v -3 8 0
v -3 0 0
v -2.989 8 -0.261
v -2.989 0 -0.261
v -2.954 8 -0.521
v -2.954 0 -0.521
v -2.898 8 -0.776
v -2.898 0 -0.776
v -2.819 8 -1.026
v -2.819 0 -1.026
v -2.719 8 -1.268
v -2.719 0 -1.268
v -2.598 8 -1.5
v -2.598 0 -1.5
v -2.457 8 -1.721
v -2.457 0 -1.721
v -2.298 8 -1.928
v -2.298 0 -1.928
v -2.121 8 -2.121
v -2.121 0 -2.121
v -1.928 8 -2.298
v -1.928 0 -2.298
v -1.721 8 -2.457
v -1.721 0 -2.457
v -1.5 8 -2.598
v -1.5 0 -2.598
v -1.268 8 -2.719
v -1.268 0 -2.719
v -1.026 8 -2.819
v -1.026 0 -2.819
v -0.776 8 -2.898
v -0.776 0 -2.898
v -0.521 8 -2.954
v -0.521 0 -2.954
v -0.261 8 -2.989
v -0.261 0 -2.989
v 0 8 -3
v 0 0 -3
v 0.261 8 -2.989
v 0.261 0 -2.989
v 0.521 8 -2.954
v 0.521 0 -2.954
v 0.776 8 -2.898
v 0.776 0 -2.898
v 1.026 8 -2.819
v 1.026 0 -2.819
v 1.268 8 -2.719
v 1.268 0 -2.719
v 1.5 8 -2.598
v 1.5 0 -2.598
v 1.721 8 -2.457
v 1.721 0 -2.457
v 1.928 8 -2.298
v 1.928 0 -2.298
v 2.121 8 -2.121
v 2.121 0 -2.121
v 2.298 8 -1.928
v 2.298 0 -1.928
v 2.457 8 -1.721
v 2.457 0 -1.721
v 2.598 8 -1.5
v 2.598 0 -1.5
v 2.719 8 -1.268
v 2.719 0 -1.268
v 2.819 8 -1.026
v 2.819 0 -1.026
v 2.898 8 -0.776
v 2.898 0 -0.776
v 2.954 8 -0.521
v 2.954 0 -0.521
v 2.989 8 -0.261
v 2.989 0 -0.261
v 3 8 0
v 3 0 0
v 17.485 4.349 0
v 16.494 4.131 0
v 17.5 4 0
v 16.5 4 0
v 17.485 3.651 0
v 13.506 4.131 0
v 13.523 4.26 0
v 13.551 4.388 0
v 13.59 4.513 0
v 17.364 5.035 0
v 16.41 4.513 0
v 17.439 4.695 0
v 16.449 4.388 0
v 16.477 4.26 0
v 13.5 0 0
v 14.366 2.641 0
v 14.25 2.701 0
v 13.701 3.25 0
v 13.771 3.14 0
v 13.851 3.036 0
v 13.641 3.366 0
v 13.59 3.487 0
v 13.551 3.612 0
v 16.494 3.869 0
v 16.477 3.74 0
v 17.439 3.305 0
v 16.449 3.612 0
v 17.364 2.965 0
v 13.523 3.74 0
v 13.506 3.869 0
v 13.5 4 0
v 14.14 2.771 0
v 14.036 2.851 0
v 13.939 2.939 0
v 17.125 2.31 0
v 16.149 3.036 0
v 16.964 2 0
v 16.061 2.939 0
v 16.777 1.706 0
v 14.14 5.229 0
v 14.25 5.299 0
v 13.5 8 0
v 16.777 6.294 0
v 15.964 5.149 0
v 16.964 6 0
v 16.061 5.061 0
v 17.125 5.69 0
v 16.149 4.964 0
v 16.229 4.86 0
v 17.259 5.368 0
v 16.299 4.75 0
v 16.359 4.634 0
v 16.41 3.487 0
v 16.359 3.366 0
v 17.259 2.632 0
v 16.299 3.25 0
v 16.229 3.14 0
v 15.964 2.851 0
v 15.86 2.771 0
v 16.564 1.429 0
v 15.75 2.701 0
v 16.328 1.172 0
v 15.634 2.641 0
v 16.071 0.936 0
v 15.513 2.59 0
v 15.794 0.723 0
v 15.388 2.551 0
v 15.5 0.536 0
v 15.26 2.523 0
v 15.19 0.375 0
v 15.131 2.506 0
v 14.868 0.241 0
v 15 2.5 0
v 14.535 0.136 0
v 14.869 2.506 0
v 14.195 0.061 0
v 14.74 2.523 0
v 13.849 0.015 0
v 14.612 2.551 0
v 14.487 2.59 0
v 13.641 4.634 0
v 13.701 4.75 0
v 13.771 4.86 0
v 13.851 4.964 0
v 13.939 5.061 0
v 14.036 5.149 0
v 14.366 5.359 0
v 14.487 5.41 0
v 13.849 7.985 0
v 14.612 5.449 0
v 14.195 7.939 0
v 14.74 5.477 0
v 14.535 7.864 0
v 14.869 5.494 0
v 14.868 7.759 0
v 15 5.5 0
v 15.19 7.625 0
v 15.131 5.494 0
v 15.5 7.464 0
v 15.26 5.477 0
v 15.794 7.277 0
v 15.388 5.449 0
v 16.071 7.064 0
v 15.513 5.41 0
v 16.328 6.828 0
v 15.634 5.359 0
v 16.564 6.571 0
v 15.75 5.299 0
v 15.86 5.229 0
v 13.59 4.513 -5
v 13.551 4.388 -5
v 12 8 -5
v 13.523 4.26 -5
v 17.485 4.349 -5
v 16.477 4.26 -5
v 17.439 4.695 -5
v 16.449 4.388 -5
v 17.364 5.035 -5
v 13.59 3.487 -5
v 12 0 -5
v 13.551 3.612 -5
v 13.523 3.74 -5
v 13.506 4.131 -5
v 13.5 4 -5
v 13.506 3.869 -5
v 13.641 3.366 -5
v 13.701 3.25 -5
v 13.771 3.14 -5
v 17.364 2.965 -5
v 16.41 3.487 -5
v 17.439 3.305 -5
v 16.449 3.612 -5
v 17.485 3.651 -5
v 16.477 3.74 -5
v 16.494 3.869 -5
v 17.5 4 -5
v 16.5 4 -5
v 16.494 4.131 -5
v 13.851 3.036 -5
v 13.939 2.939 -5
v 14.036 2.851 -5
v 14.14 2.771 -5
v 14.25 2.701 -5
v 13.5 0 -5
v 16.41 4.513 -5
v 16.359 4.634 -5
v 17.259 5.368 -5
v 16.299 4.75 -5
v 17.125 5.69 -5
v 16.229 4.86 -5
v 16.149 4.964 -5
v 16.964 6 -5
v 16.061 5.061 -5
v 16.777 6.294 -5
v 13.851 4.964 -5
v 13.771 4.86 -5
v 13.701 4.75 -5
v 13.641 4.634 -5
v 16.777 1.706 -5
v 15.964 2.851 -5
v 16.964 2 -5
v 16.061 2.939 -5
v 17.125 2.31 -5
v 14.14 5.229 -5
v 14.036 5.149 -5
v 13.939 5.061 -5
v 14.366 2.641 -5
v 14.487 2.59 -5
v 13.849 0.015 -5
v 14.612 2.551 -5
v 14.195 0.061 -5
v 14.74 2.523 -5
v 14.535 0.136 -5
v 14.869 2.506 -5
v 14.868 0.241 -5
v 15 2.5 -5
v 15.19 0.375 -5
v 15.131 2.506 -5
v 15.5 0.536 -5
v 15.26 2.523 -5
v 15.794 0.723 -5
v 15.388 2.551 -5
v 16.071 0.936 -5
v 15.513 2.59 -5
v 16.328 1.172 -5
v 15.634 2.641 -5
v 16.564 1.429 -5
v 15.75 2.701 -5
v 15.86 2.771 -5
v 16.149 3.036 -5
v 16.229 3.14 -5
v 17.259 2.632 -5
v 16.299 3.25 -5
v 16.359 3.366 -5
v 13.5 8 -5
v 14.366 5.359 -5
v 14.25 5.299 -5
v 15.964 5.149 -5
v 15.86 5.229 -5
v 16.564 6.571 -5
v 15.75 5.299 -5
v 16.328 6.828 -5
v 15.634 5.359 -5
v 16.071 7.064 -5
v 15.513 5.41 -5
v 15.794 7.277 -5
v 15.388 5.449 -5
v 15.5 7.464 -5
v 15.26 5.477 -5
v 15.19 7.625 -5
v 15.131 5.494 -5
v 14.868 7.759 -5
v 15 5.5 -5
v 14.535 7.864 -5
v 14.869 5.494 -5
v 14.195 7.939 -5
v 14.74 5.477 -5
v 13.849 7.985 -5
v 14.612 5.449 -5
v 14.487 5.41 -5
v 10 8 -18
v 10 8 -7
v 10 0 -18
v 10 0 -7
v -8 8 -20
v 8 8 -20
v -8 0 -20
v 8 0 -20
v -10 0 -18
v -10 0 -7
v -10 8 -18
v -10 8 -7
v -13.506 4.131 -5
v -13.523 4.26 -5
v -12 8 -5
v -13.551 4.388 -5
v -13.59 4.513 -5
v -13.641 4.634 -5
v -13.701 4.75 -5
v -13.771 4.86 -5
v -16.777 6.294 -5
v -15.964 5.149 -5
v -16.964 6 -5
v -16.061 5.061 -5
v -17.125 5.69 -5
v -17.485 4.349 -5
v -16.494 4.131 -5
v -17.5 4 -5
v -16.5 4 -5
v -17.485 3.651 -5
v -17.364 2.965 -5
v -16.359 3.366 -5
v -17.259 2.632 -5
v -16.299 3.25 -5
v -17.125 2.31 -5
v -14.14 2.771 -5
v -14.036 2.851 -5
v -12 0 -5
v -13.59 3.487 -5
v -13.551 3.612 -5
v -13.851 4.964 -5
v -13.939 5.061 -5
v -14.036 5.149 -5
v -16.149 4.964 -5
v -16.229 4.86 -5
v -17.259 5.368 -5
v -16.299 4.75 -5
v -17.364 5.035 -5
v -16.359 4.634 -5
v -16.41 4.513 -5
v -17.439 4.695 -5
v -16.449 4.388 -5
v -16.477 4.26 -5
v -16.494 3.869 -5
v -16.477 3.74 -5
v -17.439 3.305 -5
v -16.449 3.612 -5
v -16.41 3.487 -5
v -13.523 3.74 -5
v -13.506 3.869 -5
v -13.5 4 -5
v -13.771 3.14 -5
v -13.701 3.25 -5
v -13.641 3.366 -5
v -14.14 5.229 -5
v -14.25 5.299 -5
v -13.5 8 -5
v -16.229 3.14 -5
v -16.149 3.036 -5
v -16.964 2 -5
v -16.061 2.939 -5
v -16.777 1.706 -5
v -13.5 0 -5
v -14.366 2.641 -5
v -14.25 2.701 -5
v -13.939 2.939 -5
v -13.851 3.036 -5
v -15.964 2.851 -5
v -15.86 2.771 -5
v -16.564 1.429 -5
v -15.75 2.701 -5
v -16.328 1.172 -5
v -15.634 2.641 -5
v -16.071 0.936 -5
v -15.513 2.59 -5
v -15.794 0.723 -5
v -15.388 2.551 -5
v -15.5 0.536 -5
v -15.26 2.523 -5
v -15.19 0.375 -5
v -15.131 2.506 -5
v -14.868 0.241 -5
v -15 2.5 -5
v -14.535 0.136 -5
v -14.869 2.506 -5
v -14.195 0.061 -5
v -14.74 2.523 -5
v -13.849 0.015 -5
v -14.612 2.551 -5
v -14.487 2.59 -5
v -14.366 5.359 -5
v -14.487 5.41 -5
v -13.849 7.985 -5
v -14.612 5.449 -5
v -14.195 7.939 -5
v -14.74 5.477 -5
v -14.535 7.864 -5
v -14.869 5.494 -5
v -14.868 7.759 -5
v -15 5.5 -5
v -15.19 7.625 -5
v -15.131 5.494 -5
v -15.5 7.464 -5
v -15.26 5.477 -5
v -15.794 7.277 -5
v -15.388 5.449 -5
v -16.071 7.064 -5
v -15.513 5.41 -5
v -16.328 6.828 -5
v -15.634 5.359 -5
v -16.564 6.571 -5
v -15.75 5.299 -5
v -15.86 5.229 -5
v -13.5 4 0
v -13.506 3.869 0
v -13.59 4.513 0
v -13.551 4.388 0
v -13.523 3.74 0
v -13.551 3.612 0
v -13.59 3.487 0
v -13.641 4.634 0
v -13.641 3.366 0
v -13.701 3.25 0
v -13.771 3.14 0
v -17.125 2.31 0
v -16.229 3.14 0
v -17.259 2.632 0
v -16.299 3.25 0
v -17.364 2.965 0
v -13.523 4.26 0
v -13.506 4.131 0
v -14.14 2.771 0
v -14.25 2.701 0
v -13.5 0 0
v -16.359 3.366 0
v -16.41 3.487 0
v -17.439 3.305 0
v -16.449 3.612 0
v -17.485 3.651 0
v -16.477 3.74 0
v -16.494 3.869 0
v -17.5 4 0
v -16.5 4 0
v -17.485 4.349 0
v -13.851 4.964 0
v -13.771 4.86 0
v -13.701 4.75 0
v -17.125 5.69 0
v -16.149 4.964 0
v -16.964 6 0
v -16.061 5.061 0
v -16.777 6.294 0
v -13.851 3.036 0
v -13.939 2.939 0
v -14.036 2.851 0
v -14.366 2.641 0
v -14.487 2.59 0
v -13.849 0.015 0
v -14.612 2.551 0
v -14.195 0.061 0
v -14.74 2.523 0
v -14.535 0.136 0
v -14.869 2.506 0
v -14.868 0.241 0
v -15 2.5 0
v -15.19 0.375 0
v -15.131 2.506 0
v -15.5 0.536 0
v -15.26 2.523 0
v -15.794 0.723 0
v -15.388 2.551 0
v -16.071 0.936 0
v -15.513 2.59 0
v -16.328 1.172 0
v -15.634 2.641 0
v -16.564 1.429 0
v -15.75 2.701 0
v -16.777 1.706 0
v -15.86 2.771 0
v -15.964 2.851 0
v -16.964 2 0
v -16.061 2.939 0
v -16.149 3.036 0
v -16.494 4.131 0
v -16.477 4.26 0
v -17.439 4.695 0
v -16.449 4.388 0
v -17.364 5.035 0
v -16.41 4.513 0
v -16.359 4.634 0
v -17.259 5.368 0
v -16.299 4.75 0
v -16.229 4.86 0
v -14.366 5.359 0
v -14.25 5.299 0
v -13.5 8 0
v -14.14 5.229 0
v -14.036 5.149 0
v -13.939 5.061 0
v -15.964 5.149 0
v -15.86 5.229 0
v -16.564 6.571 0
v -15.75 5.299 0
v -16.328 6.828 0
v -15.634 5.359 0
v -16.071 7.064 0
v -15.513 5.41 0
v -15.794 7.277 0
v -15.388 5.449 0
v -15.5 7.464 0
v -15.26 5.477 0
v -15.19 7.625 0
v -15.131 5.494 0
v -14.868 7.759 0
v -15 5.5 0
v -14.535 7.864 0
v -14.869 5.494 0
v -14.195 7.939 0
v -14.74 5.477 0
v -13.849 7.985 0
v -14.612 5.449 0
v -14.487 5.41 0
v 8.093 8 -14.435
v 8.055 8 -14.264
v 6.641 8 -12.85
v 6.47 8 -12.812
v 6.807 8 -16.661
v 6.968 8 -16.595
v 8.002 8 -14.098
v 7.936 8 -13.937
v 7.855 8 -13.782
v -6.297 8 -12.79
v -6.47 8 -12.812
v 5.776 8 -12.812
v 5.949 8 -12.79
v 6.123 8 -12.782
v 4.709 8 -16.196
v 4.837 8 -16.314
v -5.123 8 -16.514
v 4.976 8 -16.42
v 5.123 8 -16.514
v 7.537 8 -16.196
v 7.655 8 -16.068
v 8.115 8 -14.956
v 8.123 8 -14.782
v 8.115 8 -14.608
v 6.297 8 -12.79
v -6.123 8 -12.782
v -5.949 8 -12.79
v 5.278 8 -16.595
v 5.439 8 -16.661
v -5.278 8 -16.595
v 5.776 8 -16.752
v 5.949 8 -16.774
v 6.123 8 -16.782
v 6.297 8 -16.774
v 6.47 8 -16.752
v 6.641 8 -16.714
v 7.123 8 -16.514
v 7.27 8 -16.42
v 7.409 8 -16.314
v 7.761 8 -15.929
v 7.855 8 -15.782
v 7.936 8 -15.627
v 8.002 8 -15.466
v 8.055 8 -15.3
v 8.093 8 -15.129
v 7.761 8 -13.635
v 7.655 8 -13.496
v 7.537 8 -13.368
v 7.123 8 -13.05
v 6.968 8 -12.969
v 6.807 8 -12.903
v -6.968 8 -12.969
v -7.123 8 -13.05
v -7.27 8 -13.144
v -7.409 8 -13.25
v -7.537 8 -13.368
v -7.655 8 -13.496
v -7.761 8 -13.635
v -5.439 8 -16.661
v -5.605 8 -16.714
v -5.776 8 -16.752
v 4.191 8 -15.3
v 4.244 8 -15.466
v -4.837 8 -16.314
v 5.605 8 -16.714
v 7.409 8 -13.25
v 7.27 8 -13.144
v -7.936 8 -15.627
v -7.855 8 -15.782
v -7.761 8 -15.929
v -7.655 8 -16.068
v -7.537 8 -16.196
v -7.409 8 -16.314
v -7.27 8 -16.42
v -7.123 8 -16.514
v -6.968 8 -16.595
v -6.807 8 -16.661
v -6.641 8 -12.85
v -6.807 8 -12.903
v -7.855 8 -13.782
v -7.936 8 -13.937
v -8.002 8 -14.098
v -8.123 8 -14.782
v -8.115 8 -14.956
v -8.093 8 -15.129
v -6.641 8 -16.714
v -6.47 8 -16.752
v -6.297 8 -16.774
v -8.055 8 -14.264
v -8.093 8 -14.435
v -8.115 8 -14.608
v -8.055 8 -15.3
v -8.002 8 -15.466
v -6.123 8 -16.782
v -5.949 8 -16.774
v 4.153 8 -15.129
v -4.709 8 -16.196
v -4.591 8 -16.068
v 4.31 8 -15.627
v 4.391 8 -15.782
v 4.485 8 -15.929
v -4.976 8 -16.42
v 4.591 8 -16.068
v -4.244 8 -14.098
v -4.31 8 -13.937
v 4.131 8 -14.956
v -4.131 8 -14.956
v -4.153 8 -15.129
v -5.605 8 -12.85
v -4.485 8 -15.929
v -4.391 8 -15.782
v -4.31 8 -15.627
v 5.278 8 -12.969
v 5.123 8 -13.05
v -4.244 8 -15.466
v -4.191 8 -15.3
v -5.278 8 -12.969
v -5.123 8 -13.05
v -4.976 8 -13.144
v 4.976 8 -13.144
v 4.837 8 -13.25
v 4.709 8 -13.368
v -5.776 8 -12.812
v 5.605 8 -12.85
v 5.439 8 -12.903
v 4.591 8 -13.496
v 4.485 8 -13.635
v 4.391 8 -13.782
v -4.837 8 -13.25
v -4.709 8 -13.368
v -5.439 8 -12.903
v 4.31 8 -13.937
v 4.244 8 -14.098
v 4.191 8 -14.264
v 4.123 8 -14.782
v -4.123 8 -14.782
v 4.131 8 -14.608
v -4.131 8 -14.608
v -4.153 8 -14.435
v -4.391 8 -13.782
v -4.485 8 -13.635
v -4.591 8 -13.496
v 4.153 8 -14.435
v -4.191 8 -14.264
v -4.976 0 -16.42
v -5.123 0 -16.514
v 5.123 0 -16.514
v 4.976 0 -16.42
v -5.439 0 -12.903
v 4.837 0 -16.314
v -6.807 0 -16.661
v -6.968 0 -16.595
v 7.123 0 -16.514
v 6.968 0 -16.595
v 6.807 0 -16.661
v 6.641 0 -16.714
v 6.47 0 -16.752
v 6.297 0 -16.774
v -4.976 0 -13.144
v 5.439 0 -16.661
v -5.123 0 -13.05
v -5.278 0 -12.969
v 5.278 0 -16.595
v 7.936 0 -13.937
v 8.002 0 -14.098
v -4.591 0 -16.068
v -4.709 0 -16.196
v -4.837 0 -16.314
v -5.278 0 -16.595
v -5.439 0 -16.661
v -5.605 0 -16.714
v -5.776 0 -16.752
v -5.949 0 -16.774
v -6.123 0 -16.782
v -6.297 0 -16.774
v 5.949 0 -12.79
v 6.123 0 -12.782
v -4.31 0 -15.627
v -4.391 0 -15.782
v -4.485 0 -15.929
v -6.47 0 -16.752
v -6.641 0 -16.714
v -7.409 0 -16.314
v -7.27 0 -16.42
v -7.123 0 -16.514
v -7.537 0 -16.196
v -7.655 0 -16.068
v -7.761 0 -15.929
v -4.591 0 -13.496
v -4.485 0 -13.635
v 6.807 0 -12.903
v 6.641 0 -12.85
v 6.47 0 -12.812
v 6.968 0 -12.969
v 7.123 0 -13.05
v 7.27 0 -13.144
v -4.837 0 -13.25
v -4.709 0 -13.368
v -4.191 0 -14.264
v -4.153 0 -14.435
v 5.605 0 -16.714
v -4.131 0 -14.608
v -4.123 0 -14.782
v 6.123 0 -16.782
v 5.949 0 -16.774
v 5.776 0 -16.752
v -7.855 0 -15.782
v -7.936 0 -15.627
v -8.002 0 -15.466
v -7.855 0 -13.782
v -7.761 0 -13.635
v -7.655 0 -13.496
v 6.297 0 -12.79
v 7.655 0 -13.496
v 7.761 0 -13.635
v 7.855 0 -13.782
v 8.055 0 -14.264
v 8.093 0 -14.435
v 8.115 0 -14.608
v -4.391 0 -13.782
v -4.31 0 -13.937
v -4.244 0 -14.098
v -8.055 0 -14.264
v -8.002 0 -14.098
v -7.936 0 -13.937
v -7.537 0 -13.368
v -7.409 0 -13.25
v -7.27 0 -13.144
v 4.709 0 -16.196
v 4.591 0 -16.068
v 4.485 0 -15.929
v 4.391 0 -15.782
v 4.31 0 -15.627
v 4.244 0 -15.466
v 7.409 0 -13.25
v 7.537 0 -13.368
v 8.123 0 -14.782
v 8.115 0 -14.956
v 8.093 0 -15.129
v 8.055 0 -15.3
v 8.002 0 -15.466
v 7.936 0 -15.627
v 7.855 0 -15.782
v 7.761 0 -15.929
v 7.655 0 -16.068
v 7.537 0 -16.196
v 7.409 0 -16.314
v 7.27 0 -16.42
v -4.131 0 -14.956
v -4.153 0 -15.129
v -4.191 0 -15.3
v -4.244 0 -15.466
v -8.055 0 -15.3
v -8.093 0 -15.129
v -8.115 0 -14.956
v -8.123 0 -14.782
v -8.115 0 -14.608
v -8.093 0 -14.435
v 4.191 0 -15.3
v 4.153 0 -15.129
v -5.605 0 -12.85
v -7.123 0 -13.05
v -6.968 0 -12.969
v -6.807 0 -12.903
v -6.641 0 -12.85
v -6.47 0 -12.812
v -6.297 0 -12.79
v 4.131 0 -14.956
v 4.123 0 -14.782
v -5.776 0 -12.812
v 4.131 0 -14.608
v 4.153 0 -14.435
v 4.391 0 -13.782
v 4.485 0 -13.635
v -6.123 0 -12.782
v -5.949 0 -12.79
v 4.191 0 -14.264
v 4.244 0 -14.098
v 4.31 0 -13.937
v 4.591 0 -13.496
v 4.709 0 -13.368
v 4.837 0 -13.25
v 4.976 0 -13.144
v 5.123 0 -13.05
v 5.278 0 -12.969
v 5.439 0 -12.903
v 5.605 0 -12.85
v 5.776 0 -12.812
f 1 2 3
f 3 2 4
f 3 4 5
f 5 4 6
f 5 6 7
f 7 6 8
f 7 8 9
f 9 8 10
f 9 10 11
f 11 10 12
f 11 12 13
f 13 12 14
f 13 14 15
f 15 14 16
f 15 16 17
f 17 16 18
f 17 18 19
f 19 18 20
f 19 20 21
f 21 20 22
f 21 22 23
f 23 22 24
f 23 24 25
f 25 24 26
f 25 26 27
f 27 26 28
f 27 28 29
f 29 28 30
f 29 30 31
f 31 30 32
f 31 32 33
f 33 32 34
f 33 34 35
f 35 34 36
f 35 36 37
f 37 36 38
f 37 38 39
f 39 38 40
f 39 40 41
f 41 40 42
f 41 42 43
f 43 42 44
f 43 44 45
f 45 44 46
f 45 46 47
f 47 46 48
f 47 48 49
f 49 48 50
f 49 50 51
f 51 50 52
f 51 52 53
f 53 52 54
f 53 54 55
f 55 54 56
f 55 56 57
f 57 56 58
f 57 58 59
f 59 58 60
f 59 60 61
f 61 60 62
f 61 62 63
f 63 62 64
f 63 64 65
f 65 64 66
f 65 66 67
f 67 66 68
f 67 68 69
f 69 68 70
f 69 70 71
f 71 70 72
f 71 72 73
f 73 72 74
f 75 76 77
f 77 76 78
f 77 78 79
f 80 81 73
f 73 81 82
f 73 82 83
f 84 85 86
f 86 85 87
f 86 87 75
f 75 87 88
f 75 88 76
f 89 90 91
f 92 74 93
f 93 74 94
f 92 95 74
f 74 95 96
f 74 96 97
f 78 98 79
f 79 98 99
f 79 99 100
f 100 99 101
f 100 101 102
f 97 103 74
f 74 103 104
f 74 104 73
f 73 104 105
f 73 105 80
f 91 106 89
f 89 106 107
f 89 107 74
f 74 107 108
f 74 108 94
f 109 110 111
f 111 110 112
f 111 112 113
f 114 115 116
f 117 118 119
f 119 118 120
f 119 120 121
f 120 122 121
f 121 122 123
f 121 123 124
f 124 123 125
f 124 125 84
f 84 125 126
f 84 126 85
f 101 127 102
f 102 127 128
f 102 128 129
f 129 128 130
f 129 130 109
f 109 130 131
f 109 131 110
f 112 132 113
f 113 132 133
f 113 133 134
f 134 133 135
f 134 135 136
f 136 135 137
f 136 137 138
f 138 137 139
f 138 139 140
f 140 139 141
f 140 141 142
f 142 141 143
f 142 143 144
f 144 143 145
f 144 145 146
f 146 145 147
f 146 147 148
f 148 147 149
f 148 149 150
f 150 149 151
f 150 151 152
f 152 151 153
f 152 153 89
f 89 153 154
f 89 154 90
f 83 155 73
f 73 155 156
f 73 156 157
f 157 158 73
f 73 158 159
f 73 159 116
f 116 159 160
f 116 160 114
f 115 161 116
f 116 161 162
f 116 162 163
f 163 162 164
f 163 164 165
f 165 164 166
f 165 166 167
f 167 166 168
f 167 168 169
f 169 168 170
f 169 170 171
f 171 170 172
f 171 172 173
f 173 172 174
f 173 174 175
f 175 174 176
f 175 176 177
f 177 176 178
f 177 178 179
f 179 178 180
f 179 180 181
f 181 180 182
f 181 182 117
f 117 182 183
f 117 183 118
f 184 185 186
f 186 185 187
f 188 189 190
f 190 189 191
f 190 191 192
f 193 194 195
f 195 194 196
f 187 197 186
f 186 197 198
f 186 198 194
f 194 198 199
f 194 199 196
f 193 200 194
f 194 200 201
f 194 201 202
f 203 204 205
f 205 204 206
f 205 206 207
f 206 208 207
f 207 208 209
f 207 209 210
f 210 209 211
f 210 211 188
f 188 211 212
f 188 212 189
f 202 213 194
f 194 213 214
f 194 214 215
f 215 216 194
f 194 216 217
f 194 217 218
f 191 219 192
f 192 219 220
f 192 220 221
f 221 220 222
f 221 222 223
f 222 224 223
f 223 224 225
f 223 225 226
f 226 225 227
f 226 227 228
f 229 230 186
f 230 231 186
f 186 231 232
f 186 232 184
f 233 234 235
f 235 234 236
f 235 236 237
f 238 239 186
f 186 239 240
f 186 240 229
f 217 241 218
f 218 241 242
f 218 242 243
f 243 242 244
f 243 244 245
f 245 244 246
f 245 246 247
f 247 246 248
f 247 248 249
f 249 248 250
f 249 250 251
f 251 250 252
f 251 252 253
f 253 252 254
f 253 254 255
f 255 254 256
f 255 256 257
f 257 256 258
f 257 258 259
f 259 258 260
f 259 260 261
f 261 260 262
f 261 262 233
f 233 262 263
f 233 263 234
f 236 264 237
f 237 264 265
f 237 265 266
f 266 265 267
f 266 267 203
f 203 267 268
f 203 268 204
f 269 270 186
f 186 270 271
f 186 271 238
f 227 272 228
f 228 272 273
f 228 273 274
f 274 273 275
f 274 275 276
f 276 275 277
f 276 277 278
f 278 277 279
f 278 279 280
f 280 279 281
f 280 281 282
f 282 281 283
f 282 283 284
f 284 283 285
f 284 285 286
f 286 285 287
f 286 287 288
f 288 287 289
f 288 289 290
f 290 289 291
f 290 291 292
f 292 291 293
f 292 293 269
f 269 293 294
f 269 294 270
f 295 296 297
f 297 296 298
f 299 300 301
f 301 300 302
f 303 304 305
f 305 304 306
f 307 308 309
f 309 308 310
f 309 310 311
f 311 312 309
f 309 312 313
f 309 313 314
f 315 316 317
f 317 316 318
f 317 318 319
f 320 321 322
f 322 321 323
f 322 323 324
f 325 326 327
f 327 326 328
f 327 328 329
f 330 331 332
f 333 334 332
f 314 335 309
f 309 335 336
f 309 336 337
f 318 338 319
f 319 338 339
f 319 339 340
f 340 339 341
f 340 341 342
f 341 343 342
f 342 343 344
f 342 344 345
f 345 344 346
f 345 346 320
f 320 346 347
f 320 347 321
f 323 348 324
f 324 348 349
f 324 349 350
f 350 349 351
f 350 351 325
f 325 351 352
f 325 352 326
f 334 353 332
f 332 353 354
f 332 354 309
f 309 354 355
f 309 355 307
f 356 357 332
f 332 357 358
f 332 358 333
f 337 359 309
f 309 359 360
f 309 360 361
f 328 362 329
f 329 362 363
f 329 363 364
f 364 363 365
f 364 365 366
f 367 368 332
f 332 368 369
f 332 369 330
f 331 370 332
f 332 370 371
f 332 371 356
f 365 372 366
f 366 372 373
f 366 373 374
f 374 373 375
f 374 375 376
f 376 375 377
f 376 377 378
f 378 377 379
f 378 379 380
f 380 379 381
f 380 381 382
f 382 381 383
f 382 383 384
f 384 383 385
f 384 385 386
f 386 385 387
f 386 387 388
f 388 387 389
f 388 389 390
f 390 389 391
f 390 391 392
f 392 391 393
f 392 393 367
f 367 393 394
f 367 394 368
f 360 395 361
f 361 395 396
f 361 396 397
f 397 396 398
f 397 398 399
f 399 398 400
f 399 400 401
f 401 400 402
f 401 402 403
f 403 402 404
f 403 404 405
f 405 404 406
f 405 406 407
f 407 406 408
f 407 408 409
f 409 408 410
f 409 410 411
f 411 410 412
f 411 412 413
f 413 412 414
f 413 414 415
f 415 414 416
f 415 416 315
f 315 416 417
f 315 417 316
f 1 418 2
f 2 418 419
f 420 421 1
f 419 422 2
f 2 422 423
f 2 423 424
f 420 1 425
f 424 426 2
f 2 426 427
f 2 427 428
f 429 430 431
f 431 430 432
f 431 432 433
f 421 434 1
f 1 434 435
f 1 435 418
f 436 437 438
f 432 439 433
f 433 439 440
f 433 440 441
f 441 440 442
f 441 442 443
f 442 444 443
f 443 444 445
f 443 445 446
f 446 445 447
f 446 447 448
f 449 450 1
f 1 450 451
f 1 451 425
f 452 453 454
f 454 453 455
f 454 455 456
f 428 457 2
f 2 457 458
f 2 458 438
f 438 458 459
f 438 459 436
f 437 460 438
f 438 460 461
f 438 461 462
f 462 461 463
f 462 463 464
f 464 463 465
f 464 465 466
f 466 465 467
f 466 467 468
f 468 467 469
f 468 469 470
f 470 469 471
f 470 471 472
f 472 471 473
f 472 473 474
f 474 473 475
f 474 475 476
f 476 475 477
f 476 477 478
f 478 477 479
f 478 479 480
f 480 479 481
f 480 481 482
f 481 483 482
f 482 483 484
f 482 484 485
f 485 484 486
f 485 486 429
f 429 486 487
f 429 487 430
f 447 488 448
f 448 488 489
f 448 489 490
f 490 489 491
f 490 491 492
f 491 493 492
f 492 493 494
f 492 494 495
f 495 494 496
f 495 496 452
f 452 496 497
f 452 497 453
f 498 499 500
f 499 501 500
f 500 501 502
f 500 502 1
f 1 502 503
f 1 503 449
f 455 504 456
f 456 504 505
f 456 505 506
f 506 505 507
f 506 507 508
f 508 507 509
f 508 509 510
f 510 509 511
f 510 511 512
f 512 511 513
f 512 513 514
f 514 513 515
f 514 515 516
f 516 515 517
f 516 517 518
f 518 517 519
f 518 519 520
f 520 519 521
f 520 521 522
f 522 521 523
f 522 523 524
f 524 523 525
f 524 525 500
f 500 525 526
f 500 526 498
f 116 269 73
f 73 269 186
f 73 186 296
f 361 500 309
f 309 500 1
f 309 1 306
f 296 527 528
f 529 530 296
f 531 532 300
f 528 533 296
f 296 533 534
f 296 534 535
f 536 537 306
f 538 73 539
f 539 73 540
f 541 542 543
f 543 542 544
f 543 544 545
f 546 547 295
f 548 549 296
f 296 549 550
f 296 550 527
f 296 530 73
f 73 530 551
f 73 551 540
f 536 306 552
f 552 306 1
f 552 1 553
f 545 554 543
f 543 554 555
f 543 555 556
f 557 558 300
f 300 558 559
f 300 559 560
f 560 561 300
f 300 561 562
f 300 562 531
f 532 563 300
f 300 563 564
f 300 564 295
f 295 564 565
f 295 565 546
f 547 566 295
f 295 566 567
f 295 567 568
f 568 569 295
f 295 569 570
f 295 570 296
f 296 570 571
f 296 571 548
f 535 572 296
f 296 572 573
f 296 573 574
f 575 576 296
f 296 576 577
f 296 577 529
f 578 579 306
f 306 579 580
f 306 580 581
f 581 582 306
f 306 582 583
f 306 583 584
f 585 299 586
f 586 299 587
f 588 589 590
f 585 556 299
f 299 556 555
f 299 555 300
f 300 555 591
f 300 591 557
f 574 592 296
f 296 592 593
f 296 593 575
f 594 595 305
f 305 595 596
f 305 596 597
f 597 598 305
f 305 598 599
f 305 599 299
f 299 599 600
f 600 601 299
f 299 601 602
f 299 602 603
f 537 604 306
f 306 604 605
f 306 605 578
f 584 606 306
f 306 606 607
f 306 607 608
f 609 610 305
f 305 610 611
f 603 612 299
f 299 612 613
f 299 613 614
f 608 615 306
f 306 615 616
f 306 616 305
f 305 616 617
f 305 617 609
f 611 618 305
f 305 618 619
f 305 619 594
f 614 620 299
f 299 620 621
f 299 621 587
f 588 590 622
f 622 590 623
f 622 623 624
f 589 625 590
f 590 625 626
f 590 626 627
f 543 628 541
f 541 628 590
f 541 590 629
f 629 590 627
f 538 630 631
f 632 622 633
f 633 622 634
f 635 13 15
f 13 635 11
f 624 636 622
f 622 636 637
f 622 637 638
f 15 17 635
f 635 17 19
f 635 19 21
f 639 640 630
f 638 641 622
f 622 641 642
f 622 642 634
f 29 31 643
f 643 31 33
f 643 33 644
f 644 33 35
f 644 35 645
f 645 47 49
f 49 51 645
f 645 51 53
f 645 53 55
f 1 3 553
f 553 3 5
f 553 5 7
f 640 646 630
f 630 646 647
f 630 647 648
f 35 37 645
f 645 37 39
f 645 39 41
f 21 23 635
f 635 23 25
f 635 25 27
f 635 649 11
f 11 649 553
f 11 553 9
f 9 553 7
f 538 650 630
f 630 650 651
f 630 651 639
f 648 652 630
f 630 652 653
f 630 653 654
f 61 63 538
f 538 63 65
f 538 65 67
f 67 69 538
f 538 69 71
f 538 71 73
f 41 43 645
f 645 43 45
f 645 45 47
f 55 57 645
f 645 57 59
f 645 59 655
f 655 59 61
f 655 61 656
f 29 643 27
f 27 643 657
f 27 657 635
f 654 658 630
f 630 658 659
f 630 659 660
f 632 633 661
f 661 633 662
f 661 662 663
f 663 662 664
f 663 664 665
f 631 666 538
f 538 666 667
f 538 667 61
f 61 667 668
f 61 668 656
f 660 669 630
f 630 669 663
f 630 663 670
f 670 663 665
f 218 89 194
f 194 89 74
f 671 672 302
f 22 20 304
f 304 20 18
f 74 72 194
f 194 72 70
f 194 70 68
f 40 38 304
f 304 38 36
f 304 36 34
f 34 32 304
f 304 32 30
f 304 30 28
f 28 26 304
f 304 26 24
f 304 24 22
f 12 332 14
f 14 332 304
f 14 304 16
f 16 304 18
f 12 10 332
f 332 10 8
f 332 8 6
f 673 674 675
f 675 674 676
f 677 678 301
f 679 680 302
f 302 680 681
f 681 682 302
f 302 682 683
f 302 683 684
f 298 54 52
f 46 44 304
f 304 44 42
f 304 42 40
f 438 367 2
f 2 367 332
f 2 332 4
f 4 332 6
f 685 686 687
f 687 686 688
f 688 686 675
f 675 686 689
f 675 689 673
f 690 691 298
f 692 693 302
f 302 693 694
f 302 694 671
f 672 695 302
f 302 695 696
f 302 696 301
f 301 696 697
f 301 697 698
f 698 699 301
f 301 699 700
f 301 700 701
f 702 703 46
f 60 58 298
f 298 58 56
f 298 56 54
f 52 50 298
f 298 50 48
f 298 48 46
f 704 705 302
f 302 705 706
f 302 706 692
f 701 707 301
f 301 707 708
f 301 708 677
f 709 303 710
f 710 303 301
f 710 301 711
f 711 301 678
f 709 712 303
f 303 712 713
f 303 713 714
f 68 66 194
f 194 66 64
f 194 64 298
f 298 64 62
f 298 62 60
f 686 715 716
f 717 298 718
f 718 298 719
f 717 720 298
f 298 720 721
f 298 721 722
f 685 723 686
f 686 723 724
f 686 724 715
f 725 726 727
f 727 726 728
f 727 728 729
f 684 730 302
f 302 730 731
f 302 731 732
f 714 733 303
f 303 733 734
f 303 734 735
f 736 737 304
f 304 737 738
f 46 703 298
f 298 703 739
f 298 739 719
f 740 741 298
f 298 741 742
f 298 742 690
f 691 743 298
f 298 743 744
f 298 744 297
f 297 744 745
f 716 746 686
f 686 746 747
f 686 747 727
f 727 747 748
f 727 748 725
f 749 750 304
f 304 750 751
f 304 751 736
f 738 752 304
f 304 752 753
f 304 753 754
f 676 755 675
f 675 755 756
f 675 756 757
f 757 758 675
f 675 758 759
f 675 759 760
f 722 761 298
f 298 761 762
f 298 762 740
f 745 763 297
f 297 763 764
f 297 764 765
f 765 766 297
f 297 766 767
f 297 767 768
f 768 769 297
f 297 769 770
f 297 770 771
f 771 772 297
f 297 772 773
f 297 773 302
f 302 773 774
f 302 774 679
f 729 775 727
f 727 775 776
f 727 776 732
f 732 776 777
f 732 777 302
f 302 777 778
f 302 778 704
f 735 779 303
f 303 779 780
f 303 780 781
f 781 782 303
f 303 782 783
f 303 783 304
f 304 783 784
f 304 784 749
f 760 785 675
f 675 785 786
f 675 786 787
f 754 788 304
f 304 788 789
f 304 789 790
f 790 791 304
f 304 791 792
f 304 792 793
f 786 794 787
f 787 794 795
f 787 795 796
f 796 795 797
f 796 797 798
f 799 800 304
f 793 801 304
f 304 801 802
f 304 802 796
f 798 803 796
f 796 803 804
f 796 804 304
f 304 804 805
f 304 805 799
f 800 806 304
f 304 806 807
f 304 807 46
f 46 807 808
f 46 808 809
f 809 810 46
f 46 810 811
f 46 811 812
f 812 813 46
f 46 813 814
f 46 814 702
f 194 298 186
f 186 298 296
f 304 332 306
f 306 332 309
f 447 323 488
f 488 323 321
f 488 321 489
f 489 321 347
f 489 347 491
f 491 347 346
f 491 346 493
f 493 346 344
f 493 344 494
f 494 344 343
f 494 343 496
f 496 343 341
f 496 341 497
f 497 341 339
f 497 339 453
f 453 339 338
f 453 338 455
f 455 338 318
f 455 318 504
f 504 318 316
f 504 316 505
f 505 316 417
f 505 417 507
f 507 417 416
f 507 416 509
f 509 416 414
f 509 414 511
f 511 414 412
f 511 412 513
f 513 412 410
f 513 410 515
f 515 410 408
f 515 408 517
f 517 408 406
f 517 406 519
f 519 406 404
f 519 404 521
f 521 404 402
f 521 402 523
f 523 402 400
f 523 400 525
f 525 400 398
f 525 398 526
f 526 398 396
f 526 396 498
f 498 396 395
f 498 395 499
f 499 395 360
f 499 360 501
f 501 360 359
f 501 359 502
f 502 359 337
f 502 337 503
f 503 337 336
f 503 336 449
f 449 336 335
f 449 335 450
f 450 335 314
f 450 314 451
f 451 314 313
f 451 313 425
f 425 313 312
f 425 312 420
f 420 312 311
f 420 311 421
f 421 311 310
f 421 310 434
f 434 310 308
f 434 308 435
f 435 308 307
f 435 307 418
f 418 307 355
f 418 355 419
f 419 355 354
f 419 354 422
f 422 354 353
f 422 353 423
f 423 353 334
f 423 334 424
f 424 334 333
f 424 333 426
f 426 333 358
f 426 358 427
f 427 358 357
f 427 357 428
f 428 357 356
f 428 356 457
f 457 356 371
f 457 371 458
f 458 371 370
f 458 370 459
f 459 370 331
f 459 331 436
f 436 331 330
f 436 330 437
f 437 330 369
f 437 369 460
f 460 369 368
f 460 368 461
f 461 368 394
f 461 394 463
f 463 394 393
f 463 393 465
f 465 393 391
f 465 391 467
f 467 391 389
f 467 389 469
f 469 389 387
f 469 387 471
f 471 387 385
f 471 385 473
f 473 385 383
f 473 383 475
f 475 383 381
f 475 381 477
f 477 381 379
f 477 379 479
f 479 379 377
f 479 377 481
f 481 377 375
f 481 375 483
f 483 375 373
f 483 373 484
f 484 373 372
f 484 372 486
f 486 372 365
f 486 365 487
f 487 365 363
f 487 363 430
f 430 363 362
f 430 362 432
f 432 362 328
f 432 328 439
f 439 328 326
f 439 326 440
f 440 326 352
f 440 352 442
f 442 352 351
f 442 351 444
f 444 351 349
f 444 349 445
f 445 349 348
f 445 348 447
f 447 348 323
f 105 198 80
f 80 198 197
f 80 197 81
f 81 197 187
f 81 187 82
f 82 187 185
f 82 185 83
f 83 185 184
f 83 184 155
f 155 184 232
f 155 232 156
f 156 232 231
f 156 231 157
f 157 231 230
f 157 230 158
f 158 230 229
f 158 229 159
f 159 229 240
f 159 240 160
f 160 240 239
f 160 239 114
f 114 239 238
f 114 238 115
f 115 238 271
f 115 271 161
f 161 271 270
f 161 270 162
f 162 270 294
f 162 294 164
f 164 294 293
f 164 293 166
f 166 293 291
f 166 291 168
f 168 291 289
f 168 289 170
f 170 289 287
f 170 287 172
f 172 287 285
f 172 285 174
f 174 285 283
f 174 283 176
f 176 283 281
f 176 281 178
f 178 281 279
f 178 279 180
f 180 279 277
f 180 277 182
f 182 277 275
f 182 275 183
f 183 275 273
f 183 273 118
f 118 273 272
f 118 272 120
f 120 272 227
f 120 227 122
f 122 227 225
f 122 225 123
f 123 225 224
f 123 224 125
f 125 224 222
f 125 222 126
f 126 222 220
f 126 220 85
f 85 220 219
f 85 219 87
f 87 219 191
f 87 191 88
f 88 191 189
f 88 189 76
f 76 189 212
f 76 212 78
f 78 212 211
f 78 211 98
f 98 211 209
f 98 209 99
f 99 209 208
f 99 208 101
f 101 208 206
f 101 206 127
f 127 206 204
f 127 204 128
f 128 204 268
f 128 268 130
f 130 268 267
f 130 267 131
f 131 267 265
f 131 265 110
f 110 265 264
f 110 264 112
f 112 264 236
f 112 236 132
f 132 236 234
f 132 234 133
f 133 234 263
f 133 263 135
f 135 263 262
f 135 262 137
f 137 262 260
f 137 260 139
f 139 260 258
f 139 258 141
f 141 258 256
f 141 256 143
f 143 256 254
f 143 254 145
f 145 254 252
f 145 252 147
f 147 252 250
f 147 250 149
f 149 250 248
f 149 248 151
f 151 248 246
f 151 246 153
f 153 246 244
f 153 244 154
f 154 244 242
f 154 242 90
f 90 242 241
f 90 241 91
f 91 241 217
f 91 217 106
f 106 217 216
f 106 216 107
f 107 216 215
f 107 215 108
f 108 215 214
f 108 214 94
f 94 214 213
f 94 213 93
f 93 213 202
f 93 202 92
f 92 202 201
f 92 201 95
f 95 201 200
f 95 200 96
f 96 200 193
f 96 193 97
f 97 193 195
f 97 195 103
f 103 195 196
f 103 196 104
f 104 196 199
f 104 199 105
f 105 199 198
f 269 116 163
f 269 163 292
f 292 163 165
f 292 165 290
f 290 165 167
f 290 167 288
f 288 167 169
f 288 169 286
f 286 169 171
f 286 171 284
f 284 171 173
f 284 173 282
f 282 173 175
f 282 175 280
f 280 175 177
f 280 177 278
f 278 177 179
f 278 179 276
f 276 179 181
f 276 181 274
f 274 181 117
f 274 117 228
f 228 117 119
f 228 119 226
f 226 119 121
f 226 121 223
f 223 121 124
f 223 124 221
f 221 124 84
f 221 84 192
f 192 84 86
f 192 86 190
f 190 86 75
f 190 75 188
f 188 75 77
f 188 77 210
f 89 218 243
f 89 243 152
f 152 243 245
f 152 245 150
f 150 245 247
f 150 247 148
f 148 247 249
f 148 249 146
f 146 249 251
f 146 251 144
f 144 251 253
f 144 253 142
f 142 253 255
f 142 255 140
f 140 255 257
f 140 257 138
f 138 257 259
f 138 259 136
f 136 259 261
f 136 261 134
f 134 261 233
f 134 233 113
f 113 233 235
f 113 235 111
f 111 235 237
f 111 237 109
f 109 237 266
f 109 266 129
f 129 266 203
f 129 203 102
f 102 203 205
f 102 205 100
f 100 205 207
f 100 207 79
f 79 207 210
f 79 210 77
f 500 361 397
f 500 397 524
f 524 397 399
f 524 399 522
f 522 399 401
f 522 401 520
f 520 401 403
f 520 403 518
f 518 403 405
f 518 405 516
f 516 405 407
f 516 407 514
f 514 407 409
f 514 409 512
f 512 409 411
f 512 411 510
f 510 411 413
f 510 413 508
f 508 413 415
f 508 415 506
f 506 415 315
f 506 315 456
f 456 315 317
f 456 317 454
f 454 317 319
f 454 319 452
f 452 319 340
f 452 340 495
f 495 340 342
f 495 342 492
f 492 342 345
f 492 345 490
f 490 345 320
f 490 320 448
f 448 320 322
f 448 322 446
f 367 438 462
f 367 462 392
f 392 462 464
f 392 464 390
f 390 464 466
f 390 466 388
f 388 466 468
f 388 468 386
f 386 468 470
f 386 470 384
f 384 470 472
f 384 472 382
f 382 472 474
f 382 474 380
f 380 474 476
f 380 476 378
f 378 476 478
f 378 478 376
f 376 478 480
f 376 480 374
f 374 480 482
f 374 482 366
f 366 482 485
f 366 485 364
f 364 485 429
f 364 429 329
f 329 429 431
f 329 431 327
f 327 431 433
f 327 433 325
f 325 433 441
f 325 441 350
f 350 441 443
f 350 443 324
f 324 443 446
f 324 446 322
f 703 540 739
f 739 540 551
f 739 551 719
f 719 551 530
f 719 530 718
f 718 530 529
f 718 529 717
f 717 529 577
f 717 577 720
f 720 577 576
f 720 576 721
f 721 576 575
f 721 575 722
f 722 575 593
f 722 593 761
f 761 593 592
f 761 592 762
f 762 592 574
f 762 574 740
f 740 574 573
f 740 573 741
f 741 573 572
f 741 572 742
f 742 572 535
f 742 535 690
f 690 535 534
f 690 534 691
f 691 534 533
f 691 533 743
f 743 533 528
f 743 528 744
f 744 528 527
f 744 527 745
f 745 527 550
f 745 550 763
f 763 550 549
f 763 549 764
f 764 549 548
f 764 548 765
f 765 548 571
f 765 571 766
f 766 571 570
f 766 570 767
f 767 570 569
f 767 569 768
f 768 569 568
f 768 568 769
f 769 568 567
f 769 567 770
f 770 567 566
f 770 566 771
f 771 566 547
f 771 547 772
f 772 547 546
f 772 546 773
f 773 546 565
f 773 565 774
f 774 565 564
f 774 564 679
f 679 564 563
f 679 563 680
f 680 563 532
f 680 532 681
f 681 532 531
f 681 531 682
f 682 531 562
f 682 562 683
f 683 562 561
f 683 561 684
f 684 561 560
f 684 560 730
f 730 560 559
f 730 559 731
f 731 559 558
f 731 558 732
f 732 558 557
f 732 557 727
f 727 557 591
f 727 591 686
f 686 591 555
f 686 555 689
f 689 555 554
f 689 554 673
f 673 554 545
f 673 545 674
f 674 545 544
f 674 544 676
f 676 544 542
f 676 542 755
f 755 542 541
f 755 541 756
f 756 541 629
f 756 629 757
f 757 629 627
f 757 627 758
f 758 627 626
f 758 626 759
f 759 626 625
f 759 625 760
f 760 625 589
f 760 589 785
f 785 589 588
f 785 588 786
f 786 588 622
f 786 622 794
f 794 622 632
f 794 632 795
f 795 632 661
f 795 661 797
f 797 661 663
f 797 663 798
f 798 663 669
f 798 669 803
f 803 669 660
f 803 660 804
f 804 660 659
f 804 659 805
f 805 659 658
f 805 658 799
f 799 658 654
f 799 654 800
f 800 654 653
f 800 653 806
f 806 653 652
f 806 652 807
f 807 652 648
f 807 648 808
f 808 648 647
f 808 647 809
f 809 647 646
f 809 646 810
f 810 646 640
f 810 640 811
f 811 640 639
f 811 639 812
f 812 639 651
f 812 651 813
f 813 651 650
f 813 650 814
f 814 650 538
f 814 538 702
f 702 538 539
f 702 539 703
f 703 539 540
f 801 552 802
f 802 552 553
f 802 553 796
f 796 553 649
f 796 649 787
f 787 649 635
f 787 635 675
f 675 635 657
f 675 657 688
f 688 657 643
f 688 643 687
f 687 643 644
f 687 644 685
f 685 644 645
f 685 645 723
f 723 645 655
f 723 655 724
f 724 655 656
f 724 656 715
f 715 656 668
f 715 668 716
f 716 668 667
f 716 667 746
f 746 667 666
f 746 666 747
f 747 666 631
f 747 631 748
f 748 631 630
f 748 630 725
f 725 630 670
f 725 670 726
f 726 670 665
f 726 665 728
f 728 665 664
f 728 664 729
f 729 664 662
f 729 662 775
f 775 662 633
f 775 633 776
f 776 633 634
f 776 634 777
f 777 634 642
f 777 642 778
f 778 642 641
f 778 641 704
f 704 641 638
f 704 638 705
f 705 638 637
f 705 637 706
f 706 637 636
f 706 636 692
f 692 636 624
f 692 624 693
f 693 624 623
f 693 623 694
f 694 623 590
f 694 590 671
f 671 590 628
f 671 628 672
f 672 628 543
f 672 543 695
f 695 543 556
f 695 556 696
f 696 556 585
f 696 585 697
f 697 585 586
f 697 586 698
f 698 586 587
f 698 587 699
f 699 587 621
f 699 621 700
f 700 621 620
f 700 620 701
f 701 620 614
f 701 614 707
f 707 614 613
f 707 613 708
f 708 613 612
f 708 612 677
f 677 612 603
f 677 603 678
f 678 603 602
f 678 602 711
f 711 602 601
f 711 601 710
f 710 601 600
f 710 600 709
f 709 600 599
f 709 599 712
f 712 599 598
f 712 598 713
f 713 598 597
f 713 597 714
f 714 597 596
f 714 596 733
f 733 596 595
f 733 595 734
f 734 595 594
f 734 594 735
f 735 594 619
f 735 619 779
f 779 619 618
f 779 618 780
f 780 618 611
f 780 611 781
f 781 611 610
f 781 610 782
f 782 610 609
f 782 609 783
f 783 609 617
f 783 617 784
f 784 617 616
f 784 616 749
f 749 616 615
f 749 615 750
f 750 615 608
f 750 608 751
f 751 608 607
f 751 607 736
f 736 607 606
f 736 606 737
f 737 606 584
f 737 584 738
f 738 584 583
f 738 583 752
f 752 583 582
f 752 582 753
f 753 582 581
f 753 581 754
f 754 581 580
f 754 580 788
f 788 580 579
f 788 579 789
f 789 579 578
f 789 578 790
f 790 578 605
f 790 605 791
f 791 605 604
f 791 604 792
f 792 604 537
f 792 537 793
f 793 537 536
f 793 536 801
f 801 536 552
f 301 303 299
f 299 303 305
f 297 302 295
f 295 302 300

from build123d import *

# Parameters (mm, degrees)
BOSS_EXTRUDE1_DEPTH = 8
CHAMFER1_SIZE       = 2
SKETCH2_R           = 1.5
CUT_EXTRUDE1_DEPTH  = 25.397745798
FILLET1_R           = 4
SKETCH3_R           = 2
CUT_EXTRUDE2_DEPTH  = 28.753378173
CHAMFER2_SIZE       = 2


with BuildPart() as part:
    # Sketch1 → Boss-Extrude1 (new body)
    with BuildSketch(Plane(origin=(0, 0, 0), x_dir=(1, 0, 0), z_dir=(0, 1, 0))):
        with BuildLine():
            Line((10, 20), (-10, 20))
            Line((-10, 20), (-10, 5))
            Line((-10, 5), (-17.5, 5))
            Line((-17.5, 5), (-17.5, 0))
            Line((-17.5, 0), (-3, 0))
            ThreePointArc((-3, 0), (0, 3), (3, 0))
            Line((3, 0), (17.5, 0))
            Line((17.5, 0), (17.5, 5))
            Line((17.5, 5), (10, 5))
            Line((10, 5), (10, 20))
        make_face()
    extrude(amount=BOSS_EXTRUDE1_DEPTH)

    # Chamfer1
    chamfer1_edges = [part.edges().sort_by_distance(p)[0] for p in [
        (-10, 4, -5),
        (10, 4, -5),
    ]]
    chamfer(chamfer1_edges, length=CHAMFER1_SIZE)

    # Sketch2 → Cut-Extrude1 (cut, through all)
    with BuildSketch(Plane(origin=(0, 0, -5), x_dir=(-1, 0, 0), z_dir=(0, 0, -1))):
        with Locations((-15, 4)):
            Circle(SKETCH2_R)
        with Locations((15, 4)):
            Circle(SKETCH2_R)
    extrude(amount=-CUT_EXTRUDE1_DEPTH, mode=Mode.SUBTRACT)

    # Fillet1
    fillet1_edges = [part.edges().sort_by_distance(p)[0] for p in [
        (17.5, 8, -2.5),
        (-17.5, 8, -2.5),
        (17.5, 0, -2.5),
        (-17.5, 0, -2.5),
    ]]
    fillet(fillet1_edges, radius=FILLET1_R - 0.0001)  # a hair under: the kernel refuses the full size

    # Sketch3 → Cut-Extrude2 (cut, through all)
    with BuildSketch(Plane(origin=(0, 8, 0), x_dir=(1, 0, 0), z_dir=(0, 1, 0))):
        with Locations(Location((-6.122934918, 14.78207252, 0), (0, 0, 270))):
            Circle(SKETCH3_R)
        with Locations(Location((6.122934918, 14.78207252, 0), (0, 0, 270))):
            Circle(SKETCH3_R)
    extrude(amount=-CUT_EXTRUDE2_DEPTH, mode=Mode.SUBTRACT)

    # Chamfer2
    chamfer2_edges = [part.edges().sort_by_distance(p)[0] for p in [
        (-10, 4, -20),
        (10, 4, -20),
    ]]
    chamfer(chamfer2_edges, length=CHAMFER2_SIZE)


solid = part.part
